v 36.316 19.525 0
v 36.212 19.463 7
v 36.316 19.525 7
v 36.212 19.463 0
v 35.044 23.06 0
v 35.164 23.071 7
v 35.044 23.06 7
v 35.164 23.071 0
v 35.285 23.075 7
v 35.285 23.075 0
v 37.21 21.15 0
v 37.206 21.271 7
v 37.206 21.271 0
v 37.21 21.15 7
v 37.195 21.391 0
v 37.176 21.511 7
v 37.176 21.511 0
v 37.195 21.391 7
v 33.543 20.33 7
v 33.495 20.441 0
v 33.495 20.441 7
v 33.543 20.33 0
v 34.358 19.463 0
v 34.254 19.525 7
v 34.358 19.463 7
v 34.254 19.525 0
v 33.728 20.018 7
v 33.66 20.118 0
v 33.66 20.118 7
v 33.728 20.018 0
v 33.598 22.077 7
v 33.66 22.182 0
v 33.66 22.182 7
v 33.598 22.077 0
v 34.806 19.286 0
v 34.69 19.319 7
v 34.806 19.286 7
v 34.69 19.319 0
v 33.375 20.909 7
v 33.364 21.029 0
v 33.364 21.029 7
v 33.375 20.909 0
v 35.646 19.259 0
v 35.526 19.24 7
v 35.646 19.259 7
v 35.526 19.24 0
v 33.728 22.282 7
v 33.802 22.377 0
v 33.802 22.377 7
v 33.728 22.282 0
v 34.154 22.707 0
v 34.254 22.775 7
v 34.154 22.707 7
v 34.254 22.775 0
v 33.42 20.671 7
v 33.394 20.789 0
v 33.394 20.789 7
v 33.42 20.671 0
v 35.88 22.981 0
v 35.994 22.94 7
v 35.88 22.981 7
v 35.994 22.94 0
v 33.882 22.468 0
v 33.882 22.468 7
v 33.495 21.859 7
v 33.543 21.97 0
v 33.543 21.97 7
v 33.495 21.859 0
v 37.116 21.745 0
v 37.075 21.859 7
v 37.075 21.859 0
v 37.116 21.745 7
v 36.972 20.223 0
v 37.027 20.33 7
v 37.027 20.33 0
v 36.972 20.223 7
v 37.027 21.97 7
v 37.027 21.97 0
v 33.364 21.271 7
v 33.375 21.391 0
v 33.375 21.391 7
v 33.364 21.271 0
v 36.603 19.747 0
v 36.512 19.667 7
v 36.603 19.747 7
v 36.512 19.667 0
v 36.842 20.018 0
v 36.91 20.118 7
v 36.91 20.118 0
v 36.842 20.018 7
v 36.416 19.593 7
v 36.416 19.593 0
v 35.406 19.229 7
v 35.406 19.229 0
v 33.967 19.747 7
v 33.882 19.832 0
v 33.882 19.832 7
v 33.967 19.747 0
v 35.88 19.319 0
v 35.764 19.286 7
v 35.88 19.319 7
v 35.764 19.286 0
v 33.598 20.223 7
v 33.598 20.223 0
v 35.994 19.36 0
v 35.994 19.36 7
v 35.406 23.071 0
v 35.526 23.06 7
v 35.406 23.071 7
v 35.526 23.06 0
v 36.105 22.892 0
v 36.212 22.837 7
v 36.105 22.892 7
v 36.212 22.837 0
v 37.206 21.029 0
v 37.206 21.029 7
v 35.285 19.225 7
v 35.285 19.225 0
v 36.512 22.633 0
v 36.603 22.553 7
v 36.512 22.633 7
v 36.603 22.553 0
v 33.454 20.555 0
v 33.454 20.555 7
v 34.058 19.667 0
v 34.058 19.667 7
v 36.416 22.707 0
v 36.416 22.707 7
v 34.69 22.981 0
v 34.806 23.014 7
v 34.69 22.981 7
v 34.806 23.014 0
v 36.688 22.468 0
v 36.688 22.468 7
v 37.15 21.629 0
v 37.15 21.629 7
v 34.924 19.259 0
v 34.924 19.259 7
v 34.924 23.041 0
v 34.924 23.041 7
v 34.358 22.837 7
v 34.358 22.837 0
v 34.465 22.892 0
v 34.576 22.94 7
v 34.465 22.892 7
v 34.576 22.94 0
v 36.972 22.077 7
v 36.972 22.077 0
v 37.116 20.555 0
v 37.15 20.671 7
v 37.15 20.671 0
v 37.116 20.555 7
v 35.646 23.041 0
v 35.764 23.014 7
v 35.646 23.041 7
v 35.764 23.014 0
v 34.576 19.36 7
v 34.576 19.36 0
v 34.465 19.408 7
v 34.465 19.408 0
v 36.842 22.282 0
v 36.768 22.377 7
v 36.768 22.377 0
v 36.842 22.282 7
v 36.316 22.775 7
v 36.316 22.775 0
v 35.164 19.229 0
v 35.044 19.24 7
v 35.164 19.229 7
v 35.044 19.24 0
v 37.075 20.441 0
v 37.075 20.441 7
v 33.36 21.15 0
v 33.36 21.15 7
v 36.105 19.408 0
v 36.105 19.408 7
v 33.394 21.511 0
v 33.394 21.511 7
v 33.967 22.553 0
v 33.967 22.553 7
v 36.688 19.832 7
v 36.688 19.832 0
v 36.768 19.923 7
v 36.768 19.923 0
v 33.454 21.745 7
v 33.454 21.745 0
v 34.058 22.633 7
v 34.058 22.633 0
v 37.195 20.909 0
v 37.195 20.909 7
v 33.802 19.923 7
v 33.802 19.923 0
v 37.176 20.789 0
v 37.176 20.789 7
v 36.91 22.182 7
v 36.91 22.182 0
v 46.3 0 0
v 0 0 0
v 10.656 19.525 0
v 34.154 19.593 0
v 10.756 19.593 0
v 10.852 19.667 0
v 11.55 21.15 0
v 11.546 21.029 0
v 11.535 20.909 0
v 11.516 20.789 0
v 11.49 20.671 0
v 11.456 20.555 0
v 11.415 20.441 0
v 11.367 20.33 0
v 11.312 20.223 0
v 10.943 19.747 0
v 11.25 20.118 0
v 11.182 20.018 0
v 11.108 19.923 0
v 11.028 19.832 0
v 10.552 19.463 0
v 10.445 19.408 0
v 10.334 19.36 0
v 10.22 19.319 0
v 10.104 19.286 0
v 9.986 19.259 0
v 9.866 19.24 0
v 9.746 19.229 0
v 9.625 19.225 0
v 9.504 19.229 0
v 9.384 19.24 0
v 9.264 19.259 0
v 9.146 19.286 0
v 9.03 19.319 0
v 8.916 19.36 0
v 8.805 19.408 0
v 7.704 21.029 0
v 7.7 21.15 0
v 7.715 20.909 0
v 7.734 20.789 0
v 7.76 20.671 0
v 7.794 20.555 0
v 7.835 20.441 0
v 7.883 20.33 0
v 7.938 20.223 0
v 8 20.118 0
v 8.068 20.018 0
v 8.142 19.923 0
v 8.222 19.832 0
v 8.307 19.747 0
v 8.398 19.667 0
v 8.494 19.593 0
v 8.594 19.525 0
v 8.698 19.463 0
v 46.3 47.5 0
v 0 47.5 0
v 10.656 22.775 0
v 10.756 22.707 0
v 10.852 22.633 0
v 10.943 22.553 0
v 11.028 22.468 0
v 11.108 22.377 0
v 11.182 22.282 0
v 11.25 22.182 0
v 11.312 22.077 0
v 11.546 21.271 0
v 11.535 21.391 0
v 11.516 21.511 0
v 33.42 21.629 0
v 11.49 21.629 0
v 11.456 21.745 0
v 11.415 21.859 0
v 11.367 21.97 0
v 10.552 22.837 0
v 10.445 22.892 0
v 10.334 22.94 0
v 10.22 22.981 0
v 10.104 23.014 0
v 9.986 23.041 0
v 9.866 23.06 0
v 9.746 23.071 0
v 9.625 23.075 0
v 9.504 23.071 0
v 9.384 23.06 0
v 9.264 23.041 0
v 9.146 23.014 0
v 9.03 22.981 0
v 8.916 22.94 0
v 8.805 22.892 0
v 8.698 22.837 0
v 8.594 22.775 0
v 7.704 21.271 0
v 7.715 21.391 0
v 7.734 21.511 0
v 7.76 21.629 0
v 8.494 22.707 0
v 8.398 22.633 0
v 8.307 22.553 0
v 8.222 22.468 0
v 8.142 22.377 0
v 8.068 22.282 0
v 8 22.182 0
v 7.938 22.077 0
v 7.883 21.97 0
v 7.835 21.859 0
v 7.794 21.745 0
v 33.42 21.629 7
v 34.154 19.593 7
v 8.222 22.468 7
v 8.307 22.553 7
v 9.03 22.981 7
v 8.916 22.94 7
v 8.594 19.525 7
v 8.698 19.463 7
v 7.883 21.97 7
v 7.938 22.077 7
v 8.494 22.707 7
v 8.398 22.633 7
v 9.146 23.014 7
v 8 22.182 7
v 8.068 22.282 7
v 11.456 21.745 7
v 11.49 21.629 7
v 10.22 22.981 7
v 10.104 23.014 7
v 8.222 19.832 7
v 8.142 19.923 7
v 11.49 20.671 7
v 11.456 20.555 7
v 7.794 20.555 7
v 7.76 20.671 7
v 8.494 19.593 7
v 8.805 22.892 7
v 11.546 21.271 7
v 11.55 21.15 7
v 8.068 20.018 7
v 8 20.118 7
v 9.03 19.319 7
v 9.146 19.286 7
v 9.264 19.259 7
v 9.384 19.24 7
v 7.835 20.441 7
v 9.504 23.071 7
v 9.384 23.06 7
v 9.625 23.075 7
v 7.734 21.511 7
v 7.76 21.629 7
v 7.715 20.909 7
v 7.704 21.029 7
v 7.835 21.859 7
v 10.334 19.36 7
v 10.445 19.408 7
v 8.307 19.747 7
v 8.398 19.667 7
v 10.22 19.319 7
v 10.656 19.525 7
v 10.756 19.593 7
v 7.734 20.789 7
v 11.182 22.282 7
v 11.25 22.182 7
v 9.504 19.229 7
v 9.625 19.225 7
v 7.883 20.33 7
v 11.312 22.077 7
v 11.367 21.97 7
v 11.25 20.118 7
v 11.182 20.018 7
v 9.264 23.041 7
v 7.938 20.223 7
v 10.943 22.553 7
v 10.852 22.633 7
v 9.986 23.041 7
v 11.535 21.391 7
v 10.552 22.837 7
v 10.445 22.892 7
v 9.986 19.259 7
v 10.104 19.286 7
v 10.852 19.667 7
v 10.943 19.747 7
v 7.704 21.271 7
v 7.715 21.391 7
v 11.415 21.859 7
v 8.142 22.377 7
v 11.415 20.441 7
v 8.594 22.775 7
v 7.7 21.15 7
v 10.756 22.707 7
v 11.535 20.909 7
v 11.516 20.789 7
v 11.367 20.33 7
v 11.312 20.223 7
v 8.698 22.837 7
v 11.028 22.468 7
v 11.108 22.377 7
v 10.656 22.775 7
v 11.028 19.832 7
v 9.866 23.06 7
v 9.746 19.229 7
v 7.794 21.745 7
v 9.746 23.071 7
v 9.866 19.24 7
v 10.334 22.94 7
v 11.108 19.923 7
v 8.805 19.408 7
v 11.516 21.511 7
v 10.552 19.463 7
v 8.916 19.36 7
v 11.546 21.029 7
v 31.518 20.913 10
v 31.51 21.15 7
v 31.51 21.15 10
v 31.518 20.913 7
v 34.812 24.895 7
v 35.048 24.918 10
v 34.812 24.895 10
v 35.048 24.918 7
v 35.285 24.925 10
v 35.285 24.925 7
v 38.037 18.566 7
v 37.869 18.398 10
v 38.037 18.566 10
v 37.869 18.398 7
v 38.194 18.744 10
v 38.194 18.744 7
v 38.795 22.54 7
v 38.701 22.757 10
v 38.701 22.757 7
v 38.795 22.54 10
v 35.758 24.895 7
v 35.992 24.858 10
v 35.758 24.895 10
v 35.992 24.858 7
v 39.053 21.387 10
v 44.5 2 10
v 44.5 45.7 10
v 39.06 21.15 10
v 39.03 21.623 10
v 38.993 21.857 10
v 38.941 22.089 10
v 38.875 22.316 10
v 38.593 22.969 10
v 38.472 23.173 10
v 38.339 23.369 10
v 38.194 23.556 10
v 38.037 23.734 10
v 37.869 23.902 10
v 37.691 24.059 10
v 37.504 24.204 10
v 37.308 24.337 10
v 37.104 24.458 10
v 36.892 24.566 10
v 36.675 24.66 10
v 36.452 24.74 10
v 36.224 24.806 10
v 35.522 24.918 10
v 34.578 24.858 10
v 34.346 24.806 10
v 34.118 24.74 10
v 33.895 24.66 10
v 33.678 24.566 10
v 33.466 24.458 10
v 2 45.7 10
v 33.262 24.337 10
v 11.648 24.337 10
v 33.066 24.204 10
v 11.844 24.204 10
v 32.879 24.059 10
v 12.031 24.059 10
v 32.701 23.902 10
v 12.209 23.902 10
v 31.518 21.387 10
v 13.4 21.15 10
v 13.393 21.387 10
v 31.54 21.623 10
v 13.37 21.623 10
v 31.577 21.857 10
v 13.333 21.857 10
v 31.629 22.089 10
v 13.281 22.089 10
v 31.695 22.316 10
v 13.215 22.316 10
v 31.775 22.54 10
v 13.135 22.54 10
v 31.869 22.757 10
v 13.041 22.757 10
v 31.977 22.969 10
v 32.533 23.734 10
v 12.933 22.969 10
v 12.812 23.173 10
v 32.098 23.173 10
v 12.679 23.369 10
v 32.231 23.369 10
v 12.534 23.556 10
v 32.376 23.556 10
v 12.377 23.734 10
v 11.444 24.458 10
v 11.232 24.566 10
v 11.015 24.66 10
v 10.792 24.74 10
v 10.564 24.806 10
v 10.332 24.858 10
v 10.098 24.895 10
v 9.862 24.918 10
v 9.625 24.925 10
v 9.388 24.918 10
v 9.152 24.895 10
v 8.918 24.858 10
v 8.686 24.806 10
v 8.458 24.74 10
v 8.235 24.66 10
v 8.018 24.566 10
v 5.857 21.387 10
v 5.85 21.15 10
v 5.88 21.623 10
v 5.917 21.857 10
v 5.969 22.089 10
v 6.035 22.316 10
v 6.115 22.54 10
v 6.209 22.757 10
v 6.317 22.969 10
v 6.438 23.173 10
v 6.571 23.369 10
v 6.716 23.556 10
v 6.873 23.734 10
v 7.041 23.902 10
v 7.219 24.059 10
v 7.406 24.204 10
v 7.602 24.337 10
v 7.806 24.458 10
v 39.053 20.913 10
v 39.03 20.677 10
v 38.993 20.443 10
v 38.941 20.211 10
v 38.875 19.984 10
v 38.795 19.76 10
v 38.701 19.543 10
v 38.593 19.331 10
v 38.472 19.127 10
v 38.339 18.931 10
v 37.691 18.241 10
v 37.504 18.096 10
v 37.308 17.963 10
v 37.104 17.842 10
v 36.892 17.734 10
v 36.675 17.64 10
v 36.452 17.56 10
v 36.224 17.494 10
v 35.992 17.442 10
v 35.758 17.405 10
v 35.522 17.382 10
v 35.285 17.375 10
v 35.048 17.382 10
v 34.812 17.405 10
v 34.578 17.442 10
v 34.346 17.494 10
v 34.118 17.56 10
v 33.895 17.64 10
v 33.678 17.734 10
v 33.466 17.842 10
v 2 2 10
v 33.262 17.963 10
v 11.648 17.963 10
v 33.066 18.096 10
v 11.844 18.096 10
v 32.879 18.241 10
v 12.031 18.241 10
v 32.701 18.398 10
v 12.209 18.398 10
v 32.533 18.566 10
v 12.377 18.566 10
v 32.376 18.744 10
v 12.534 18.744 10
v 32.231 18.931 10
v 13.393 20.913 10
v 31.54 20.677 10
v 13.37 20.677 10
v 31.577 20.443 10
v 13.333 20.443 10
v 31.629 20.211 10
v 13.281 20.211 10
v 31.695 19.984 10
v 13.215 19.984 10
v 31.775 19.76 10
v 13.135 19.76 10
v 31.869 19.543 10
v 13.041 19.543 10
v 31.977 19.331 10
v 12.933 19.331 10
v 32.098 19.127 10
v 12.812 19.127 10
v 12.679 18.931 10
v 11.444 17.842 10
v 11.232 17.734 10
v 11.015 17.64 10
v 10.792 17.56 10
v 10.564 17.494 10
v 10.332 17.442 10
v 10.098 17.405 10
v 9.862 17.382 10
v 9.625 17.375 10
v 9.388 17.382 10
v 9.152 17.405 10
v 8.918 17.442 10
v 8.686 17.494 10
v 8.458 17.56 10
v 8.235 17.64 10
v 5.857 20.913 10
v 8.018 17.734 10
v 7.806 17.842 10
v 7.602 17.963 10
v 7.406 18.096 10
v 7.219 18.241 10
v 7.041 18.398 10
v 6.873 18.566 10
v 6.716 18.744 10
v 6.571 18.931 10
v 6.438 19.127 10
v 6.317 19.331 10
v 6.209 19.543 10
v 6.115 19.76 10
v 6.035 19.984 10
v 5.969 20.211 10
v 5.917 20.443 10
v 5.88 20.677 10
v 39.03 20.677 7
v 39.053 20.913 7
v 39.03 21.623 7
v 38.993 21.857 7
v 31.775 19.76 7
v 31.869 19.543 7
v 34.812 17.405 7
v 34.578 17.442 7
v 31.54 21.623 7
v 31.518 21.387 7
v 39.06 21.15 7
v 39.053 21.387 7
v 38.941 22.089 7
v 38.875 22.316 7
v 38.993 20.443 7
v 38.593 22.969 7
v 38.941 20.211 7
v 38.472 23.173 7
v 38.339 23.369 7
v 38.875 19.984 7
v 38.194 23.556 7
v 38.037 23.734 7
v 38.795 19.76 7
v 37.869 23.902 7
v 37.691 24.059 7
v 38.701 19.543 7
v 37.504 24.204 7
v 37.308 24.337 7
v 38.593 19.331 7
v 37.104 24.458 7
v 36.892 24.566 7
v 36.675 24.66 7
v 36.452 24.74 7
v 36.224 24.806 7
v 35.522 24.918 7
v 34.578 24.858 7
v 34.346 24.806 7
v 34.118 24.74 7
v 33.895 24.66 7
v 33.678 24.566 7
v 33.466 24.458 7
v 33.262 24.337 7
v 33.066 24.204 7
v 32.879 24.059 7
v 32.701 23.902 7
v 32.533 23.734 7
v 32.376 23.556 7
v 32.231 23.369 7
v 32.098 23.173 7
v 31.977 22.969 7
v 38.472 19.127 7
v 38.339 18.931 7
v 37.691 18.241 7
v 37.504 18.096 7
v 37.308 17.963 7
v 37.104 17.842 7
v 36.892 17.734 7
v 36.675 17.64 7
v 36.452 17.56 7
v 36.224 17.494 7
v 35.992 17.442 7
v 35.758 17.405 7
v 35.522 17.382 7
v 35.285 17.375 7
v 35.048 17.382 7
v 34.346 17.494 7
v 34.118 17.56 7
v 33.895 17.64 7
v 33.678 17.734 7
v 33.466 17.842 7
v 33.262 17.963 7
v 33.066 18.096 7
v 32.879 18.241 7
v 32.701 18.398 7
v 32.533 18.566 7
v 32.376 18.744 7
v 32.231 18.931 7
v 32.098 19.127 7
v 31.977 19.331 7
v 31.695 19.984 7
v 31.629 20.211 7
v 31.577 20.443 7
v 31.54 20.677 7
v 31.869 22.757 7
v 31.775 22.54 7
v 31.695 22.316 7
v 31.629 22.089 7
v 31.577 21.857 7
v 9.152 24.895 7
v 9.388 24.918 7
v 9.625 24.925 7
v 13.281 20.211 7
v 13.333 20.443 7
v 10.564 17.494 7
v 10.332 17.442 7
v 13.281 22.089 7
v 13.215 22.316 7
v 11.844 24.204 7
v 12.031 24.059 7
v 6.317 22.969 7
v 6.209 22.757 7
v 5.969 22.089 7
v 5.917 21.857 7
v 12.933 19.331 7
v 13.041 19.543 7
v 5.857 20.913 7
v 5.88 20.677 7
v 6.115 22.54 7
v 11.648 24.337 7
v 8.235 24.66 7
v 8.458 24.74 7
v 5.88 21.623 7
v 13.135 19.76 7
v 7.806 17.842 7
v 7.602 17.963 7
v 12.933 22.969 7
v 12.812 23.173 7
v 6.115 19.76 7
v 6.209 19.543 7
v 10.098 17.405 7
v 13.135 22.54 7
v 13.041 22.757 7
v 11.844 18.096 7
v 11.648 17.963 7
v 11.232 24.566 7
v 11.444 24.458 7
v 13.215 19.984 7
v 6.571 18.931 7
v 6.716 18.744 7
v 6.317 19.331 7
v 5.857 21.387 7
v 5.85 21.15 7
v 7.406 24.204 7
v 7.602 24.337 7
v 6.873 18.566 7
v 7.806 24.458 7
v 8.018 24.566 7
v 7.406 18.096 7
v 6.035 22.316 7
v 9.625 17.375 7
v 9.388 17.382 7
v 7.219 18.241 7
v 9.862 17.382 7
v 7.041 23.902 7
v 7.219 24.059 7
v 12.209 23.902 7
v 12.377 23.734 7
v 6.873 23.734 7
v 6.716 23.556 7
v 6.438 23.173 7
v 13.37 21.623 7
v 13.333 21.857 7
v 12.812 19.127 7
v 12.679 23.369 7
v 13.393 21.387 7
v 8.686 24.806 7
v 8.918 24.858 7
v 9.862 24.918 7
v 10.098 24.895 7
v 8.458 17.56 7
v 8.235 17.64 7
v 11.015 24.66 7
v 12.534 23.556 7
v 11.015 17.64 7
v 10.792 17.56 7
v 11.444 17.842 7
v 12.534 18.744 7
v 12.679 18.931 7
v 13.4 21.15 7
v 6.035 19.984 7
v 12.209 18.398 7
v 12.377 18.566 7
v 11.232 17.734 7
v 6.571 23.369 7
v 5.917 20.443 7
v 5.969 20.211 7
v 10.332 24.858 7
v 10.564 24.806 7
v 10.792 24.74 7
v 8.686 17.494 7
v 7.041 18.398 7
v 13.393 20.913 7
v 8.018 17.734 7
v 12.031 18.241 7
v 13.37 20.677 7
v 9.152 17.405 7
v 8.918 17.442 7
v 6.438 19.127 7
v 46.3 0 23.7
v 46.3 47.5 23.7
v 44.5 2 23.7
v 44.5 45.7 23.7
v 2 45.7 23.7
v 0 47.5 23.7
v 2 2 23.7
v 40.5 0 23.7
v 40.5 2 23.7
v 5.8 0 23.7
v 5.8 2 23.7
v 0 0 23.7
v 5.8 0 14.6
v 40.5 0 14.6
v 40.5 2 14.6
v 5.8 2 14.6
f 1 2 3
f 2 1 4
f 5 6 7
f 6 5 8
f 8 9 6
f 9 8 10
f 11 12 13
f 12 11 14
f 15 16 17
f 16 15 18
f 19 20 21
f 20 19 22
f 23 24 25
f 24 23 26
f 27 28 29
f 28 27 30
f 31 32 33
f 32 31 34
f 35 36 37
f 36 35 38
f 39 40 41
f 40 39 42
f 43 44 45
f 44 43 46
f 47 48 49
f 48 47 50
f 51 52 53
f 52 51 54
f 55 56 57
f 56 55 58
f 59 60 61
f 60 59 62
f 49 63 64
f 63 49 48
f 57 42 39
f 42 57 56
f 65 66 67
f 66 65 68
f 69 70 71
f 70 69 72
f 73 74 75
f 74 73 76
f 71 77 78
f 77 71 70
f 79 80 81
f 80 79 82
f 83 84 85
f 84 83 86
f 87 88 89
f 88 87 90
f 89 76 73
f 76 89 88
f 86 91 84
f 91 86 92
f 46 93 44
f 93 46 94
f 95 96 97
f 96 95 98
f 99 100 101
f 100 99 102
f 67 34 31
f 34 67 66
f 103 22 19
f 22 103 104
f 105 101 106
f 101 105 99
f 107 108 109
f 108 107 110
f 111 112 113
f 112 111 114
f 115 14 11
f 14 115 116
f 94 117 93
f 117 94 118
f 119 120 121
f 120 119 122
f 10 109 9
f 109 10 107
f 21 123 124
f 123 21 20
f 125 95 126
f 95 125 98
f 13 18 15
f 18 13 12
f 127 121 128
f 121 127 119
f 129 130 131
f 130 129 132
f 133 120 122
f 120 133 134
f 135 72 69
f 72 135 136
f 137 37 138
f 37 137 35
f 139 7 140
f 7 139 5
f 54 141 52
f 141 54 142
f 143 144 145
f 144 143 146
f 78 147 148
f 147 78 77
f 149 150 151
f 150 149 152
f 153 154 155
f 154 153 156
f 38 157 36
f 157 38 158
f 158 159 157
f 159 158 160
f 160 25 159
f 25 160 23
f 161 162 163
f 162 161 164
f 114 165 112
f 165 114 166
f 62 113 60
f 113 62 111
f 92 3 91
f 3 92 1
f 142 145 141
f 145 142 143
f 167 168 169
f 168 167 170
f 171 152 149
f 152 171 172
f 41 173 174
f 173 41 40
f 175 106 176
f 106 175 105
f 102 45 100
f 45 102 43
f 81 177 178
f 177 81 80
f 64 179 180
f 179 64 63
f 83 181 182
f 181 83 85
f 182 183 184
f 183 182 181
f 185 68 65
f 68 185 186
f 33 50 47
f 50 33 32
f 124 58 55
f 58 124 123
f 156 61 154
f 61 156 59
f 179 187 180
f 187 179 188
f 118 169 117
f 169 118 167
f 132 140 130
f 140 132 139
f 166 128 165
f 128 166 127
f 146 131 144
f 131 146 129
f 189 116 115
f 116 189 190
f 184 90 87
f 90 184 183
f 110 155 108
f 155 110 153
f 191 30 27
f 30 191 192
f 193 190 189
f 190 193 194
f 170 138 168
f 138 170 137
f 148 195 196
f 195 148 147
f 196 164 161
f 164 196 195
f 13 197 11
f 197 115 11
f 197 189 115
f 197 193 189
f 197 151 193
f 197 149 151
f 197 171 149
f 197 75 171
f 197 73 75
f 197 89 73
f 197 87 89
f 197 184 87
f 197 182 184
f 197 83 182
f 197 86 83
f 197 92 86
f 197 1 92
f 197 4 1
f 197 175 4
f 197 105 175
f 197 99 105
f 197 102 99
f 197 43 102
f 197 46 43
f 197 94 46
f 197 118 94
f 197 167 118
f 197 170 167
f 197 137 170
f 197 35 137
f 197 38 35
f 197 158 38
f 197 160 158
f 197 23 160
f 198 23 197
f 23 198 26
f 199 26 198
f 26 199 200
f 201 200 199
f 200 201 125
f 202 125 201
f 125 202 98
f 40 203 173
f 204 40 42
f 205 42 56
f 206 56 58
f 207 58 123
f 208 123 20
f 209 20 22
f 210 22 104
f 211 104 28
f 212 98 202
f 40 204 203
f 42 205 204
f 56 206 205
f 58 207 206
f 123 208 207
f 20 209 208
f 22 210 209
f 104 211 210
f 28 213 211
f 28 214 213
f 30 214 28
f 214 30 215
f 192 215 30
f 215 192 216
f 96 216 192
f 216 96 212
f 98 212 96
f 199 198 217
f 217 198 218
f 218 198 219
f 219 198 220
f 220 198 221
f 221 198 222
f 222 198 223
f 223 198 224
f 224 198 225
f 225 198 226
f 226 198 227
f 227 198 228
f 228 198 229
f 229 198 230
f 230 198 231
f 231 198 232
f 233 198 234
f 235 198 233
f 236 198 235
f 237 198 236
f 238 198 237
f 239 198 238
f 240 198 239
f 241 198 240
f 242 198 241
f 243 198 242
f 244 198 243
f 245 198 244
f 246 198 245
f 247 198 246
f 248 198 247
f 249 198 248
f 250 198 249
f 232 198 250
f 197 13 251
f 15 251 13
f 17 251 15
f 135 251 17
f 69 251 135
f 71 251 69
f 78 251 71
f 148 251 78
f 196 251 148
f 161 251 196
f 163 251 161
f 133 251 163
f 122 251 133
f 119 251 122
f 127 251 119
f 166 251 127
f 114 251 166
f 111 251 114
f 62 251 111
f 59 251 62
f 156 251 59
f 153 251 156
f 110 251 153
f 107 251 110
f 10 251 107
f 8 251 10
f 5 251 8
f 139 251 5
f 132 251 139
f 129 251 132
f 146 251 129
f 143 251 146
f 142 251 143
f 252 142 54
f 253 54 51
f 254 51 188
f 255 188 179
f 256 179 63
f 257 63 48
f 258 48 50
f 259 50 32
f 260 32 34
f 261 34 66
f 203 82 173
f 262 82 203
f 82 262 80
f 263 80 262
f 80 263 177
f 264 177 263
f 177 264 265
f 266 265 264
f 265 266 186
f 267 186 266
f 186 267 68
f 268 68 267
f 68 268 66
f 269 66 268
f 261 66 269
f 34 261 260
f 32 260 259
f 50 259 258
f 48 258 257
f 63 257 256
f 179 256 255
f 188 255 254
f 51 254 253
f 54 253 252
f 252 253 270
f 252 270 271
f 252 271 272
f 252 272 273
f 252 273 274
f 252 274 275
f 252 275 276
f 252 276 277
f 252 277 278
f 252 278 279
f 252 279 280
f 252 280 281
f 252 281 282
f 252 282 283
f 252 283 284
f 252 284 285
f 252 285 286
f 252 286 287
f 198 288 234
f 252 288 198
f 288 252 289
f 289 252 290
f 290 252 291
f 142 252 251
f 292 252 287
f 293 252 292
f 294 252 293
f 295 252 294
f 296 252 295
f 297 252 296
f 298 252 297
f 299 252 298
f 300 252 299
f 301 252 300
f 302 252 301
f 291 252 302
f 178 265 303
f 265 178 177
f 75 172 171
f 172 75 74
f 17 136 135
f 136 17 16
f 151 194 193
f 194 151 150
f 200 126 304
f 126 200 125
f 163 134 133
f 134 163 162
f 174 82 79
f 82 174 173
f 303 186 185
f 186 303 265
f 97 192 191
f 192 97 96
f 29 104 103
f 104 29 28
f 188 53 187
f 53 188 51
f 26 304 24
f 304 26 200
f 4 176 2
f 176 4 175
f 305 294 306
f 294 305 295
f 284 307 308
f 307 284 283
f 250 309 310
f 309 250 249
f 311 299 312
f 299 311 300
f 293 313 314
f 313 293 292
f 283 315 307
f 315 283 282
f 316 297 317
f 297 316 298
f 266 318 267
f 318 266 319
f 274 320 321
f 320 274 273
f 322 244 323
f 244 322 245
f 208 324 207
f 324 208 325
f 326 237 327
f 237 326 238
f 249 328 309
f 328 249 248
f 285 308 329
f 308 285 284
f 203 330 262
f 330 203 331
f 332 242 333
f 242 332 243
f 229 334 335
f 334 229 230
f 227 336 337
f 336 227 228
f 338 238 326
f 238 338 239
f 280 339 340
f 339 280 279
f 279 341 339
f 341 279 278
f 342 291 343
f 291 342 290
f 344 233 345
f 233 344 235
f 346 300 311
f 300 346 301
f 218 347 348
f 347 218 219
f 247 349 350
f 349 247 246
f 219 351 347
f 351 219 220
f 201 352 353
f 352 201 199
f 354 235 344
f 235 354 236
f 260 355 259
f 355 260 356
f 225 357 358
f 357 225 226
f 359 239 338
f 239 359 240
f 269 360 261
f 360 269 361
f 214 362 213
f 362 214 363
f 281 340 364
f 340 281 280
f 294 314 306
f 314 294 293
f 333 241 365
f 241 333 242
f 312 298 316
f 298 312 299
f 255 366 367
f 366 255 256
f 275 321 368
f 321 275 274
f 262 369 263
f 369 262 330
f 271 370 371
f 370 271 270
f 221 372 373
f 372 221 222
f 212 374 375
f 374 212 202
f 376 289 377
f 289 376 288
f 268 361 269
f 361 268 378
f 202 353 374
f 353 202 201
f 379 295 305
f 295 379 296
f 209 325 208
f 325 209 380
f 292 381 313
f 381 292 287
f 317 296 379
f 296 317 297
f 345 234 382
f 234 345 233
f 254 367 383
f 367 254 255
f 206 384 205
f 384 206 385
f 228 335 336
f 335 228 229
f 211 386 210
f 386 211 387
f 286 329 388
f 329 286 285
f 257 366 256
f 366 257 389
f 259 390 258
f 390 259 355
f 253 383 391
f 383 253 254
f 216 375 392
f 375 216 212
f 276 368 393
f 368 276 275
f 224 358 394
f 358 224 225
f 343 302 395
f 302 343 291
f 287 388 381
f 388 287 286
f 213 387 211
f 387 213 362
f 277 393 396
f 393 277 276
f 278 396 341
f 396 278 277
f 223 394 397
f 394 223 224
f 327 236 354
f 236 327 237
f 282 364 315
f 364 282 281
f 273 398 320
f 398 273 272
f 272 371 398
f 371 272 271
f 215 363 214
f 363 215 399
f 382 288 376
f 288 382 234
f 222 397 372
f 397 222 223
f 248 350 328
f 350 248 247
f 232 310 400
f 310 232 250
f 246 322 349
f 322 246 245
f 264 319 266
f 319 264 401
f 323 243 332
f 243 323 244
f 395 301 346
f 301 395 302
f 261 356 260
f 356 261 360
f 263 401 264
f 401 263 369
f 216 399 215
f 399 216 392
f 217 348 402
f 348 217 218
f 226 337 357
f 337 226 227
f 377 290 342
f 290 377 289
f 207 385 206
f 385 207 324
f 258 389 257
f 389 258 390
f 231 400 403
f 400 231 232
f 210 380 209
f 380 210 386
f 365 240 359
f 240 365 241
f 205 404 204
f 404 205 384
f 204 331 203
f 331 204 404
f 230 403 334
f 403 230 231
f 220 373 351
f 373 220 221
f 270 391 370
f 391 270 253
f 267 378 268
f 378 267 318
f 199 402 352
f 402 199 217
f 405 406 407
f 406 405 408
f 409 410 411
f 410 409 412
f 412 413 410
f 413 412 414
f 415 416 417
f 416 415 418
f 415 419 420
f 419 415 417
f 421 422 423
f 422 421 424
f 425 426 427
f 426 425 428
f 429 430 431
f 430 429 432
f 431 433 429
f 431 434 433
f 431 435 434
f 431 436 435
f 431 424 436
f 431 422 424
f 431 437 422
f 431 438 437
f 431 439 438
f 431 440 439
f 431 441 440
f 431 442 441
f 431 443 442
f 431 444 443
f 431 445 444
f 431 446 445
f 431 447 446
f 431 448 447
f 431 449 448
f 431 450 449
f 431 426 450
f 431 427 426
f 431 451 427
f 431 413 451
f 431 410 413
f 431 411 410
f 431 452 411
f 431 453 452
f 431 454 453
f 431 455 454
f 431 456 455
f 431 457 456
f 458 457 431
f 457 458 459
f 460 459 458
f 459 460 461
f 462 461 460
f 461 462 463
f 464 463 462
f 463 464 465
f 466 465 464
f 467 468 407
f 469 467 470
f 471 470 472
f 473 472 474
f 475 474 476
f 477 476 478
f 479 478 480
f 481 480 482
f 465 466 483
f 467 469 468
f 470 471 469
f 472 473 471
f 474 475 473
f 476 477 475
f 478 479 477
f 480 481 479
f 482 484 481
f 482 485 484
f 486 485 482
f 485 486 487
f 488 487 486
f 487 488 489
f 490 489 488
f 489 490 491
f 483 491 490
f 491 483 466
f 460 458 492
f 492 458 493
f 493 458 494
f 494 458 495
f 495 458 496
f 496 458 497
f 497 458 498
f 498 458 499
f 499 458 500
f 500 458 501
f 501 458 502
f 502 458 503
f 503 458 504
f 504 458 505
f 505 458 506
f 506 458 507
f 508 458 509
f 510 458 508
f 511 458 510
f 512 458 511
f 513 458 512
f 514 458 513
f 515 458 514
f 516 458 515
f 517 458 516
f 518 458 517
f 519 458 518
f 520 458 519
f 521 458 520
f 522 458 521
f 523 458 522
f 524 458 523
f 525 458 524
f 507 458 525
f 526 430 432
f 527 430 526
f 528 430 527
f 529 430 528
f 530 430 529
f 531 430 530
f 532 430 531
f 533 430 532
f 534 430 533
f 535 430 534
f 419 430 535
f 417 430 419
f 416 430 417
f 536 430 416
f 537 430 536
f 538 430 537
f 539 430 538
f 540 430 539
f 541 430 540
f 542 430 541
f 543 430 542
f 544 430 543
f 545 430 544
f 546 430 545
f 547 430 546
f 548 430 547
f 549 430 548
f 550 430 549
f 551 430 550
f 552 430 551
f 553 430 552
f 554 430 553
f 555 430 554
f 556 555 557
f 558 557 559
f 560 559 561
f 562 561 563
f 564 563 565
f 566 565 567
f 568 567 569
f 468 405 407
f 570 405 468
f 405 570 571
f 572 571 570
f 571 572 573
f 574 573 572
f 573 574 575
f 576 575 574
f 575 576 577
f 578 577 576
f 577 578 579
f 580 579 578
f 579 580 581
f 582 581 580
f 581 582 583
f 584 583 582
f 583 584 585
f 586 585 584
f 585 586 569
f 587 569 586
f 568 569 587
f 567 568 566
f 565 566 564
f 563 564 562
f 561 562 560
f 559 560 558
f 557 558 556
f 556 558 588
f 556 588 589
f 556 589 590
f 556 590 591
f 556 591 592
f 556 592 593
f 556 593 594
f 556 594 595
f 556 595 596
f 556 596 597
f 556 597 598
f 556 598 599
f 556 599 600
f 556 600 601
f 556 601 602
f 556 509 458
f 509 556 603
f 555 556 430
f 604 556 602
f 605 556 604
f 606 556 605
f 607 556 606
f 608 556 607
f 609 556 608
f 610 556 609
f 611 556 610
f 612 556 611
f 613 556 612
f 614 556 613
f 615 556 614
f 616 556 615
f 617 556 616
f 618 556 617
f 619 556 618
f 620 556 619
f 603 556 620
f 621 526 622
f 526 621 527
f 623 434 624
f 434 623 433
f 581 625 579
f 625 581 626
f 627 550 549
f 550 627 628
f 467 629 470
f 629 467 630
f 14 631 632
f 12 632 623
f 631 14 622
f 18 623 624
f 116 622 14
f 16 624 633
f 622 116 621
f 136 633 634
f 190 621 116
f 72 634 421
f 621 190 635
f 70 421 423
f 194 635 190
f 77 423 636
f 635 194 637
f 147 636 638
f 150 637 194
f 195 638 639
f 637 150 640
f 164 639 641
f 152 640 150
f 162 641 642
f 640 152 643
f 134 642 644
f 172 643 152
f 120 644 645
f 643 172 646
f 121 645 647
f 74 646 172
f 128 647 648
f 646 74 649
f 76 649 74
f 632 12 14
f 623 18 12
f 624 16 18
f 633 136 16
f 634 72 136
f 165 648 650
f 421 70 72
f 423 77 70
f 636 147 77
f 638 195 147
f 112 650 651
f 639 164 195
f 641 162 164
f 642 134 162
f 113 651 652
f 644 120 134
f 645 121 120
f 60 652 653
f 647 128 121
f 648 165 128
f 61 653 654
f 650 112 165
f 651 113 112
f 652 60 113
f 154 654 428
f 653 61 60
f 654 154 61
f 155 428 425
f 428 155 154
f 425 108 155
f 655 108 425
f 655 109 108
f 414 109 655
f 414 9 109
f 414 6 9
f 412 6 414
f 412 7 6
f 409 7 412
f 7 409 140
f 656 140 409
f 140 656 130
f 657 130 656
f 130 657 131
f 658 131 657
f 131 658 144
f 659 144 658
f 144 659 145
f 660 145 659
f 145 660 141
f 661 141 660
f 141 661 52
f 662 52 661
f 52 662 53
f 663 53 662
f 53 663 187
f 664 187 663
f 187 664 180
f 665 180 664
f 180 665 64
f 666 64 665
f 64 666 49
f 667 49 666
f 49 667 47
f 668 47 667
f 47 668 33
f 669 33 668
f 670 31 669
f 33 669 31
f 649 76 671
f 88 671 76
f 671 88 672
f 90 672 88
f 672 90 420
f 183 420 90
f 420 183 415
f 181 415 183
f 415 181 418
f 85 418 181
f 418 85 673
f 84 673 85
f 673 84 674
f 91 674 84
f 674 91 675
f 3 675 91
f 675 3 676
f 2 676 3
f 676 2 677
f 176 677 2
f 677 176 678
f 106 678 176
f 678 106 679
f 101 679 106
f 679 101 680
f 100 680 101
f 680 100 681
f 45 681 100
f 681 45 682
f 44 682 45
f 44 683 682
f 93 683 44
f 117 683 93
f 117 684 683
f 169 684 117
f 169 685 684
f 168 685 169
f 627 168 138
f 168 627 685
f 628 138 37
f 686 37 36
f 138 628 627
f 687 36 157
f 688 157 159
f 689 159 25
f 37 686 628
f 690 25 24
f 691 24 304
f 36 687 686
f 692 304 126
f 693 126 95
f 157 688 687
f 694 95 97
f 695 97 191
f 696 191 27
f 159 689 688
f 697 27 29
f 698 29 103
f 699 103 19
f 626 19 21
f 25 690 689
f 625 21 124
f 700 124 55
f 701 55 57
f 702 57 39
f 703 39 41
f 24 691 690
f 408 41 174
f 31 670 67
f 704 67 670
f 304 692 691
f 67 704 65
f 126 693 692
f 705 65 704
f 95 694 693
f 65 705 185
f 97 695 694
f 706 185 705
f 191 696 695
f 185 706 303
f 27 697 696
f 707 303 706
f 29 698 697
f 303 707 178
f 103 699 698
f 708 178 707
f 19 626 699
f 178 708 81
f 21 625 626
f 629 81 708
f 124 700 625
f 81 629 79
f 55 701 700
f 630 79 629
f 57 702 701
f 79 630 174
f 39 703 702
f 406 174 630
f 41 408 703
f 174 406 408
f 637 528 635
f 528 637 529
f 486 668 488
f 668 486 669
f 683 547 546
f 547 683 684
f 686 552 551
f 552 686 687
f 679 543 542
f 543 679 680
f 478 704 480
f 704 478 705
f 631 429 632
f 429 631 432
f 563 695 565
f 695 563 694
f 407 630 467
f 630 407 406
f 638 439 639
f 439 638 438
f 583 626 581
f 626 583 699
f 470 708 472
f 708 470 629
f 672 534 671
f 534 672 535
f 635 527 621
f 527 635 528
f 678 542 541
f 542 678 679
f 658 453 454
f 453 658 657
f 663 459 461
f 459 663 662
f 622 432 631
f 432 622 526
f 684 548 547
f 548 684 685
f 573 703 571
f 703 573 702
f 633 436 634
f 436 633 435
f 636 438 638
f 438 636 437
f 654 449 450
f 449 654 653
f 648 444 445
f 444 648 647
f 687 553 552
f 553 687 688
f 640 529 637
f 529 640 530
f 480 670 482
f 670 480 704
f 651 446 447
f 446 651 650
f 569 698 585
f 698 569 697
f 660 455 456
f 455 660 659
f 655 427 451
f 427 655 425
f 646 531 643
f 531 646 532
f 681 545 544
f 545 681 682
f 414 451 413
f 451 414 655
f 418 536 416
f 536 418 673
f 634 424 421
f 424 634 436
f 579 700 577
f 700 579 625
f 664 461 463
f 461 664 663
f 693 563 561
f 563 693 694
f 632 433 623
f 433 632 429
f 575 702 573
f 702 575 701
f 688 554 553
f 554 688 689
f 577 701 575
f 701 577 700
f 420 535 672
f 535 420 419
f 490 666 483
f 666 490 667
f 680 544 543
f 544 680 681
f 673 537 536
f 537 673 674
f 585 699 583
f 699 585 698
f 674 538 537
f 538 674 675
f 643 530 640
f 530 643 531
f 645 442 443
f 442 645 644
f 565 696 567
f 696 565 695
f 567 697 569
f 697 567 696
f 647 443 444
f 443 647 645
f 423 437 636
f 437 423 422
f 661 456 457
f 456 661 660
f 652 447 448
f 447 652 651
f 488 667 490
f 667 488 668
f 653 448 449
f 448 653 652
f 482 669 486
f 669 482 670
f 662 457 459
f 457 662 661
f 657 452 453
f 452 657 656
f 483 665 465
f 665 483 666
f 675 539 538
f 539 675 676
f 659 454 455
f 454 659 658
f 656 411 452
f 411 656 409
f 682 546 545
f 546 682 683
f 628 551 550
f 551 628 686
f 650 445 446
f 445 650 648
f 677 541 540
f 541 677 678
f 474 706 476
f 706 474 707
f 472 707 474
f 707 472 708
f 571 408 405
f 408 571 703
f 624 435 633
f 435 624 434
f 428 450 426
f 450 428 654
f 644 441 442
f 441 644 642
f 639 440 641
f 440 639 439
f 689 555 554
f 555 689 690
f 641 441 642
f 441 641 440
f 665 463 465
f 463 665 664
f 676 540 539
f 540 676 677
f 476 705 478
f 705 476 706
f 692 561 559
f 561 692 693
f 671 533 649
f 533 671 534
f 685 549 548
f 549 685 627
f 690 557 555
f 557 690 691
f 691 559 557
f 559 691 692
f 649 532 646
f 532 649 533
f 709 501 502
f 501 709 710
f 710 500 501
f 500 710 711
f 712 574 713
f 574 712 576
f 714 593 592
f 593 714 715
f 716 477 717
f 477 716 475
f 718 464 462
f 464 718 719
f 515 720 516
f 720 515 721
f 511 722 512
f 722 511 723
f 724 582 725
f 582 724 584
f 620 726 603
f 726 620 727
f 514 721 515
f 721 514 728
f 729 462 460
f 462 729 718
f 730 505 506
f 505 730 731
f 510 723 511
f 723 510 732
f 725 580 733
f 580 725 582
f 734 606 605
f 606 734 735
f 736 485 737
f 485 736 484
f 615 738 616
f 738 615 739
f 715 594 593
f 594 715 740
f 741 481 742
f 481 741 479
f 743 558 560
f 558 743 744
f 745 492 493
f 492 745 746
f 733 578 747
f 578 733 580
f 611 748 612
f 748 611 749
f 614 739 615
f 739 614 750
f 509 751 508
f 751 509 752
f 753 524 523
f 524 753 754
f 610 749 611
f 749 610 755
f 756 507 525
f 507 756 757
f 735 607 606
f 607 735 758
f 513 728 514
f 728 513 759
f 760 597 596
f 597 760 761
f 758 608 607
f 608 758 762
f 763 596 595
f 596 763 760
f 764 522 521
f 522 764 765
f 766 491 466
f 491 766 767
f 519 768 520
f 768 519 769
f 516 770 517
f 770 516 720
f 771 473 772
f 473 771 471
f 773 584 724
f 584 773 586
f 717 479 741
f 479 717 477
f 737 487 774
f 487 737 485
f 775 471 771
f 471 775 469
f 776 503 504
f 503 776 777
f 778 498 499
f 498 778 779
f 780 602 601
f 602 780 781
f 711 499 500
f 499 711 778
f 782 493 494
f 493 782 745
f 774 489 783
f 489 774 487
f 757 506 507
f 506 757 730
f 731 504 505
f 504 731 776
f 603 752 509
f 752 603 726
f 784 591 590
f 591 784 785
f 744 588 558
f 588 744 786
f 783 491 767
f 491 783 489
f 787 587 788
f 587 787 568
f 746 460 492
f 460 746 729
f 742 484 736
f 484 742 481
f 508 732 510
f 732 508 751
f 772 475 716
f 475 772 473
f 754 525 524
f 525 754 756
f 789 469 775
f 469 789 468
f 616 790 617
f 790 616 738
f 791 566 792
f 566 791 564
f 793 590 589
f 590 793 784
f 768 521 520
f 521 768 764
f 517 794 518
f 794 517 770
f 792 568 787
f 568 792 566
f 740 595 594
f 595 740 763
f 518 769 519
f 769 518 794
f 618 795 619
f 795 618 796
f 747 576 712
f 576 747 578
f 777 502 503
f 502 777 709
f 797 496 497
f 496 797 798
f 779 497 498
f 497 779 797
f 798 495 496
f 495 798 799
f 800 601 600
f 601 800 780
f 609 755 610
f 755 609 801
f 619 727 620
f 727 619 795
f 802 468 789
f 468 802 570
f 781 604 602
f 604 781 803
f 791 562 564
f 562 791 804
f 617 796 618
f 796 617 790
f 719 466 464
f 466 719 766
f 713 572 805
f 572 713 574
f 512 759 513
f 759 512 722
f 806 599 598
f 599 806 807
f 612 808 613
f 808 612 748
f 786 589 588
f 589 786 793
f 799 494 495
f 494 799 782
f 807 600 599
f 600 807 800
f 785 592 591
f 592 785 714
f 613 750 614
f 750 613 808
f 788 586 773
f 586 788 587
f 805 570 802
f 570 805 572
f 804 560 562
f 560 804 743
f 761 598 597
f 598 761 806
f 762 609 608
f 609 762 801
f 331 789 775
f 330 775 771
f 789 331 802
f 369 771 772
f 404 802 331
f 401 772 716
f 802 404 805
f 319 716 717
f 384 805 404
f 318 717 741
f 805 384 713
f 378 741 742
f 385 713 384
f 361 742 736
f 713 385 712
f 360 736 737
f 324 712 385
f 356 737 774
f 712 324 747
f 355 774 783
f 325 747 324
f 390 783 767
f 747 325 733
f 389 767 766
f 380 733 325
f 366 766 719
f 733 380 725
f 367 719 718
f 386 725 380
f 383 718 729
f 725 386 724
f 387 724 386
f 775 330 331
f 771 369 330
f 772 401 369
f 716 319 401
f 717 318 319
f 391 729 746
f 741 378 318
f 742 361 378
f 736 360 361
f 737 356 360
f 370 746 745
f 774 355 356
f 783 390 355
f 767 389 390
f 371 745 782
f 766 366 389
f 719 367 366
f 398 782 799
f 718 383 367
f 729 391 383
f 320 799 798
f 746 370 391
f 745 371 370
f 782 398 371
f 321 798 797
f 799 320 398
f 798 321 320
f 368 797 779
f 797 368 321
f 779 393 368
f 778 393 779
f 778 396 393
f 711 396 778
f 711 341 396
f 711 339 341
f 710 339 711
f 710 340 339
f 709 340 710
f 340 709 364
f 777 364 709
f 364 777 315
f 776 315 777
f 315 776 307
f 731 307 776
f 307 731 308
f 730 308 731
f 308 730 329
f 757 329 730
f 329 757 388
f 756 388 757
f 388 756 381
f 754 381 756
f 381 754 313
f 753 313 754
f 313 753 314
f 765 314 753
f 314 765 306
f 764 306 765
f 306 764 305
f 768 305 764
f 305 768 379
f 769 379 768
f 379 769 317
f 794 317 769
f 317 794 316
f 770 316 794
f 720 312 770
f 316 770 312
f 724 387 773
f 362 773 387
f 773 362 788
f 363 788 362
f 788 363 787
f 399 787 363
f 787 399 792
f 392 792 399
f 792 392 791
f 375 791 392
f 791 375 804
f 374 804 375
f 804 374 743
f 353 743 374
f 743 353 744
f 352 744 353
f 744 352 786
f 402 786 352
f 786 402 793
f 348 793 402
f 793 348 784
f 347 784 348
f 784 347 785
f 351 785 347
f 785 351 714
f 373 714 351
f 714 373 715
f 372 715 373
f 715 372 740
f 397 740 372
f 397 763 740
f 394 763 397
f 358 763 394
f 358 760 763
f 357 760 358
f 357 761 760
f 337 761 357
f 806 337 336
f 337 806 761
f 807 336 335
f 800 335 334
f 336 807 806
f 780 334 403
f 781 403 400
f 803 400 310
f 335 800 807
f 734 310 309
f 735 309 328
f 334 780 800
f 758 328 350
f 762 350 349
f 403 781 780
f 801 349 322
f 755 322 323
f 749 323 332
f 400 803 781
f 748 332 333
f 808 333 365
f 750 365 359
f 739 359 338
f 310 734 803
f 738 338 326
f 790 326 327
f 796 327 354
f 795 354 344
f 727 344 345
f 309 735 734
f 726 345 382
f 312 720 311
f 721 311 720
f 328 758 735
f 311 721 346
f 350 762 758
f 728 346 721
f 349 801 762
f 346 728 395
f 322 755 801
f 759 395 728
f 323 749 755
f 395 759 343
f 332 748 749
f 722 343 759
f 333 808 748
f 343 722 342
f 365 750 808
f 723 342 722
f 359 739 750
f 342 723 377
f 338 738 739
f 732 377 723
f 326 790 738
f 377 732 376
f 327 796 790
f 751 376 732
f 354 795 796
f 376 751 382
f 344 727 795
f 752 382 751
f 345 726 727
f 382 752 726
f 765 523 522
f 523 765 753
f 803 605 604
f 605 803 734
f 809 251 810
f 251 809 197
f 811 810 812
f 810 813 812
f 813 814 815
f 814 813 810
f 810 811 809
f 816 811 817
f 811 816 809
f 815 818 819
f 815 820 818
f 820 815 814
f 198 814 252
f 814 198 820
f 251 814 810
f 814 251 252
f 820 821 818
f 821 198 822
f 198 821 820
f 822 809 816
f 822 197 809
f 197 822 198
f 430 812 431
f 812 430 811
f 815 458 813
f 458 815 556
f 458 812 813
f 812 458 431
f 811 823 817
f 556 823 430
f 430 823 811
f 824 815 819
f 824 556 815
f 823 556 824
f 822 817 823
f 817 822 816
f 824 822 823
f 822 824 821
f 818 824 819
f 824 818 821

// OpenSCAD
// file: ../shared_helper.scad
// Shared Helper variables and modules

// Variables
quality_value = 100;
$fn = quality_value;

// Screw Holes
m2_hole_diameter = 1.85; // 1.95;
m2_loose_diameter = 2.50;
m2_counter_sink_diameter = 3.80;
m2_counter_sink_length = 2.00;
m2_hole_offset = m2_hole_diameter / 2.0;
m2_hole_height = 100.00;
m2_nut_outer_width = 3.90;
m2_nut_outer_height = 4.40;
m2_nut_outer_depth = 1.50;
// M2_Counter_Sink_Depth

m3_hole_diameter = 2.9; // 2.8
m3_hole_offset = m3_hole_diameter / 2.0;
m3_hole_height = 100.00;
m3_head_diameter = 6.2;
m3_head_depth = 3.0; // 2.5??, 3.0

m4_hole_diameter = 3.85; // 3.90
m4_hole_offset = m4_hole_diameter / 2.0;
m4_hole_height = 100.00;
m4_head_diameter = 7.55;
m4_head_depth = 3.0; // 2.5??, 3.0

// Tolerances
hole_tight_tolerance = 0.05;
hole_loose_tolerance = 0.20;

// Springs
spring_diameter = 5.45;
spring_length = 35.00;

// Nails
brass_nail_diameter = 2.4; // 2.00; // 1.95 at the beginning it tapers
brass_nail_length = 29.54;
brass_nail_head_diameter = 3.20; // 3.00; // oval 2.84 - 3.1 mm
brass_nail_head_depth = 1.80; //1.00; // 1.80; // 2.00;

// General Variables
v_wheel_hole_diameter = 5.20;
v_wheel_offset = (v_wheel_hole_diameter / 2.0) + 2.0;

// Hot-End Holes
stand_off_hole_diameter = m3_hole_diameter;
stand_off_width_distance = 11.60 + stand_off_hole_diameter;

// Magnets
// Small Magnet (Neo)
small_magnet_height = 2.00; // ±2.00 1.97
small_magnet_diameter = 3.00; // ±3.00 // 2.98

// Medium Magnet (Neo)
medium_magnet_height = 2.96; // ±3.00
medium_magnet_diameter = 5.00;

// Large Magnet (ferrite)
large_magnet_height = 2.98; // ±3.00
large_magnet_diameter = 9.79; // ±10.00

// Switches
// D2F Switch
d2f_length = 12.88; // ±12.70
d2f_width = 5.84; // ±5.70
d2f_depth = 6.20; // ±7.00 (5 + 2) ... ±6.50
d2f_pins = 9.00 - 6.50;
d2f_plunger_length = 2.64;
d2f_plunger_width = 0.97; // ±1.00
d2f_plunger_depth = 0.39; // ±0.50
d2f_mount_hole_position = 2.10;
d2f_hole_position_from_centre = 2.85;
d2f_pin_pre_travel = 0.50;
d2f_mount_hole_shift = 4.40 + m2_hole_offset + m2_hole_offset;
d2f_switch_base = 0.2 + 0.7 + 1.50 + 0.55 - 1.0;
d2f_switch_hole_hight = 22.00;
d2f_extra_tolerance_for_switch_holes = 0.12;

// 10t85 Switch
10t85_length = 20.04; // ±19.90
10t85_width = 6.34; // ±6.40
10t85_depth = 10.64; // ±10.70
10t85_plunger_length = 3.28; // ±4.00
10t85_plunger_width = 1.96;
10t85_plunger_depth = 1.30;

// Creality Endstop Board, 2208 V2.0
// creality_endstop_hole_diameter = m3_hole_diameter + hole_loose_tolerance; // Hole is M3 sized but meant for a loose M2
creality_endstop_hole_diameter = m2_hole_diameter + hole_tight_tolerance;
creality_endstop_hole_offset = 15.00;
creality_endstop_board_height = 20.30;
creality_endstop_plug_height_extension = 2.00;
creality_endstop_board_width = 20.20;
creality_endstop_board_thickness = 1.30;
creality_endstop_board_pins_thickness = 3.20 - creality_endstop_board_thickness;
creality_endstop_board_switch_thickness = 8.50 - creality_endstop_board_thickness;
creality_endstop_board_back_space = 2.00; // Taken from the rail mount bracket
creality_endstop_board_back_height = 14.90;
creality_endstop_board_back_width = 16.80;
creality_endstop_back_thickness = 3.30;
creality_endstop_back_hole_wall_spacing = 1.50; //3.00;

// Small Tactile Switch
small_tactile_switch_length = 6.21;
small_tactile_switch_width = 6.17;
small_tactile_switch_depth = 3.18;
small_tactile_switch_plunger_diameter = 3.40;
small_tactile_switch_plunger_depth = 1.40;

// Large Tactile Switch
large_tactile_switch_length = 12.03;
large_tactile_switch_width = 11.95;
large_tactile_switch_depth = 3.12;
large_tactile_switch_plunger_length = 3.75;
large_tactile_switch_plunger_width = 3.70;
large_tactile_switch_plunger_depth = 3.94;

// Button
button_topper_top_diameter = 11.65;
button_topper_bottom_diameter = 12.96;
button_topper_depth = 5.64;
button_topper_bottom_depth = 4.38;

// Belts
// GT2

// Modules
// Creality Mounting Holes
module CrealityCounterSunkHotEndMountingHoles(total_casing_depth, casing_top_extension) {
  // Mounting holes with countersinking - horizontal, through-holes, properly positioned
  cylinder(d=m3_hole_diameter, h=total_casing_depth + 2.00, center=true);
  cylinder(d=m3_hole_diameter, h=total_casing_depth + 2.00, center=true);

  translate([stand_off_width_distance, 0, 0]) {
    cylinder(d=m3_hole_diameter, h=total_casing_depth + 2.00, center=true);
    cylinder(d=m3_head_diameter + hole_loose_tolerance, h=4 + m3_head_depth + 6 + 1.8 + casing_top_extension);
  }
}

module CrealityHotEndMountingHoles(total_casing_depth) {
  cylinder(d=m3_hole_diameter, h=total_casing_depth + 2.00, center=true);

  translate([stand_off_width_distance, 0, 0]) {
    cylinder(d=m3_hole_diameter, h=total_casing_depth + 2.00, center=true);
  }
}

module CrealityEndstopMountHoles(height, include_back_nut_cutout) {
  cylinder(d=creality_endstop_hole_diameter, h=height, center=true);

  translate([creality_endstop_hole_offset, 0, 0]) {
    cylinder(d=creality_endstop_hole_diameter, h=height, center=true);
  }

  if (include_back_nut_cutout) {
    back_depth = m2_nut_outer_depth;

    translate([-2.0, -2.0, 0]) {
      cube([m2_nut_outer_width, m2_nut_outer_height, back_depth]);

      translate([creality_endstop_hole_offset, 0, 0]) {
        cube([m2_nut_outer_width, m2_nut_outer_height, back_depth]);
      }
    }
  }
}

module CrealityEndstopBackSpace(base_cutout_extension) {
  // Smaller gap between screw holes
  translate([creality_endstop_hole_diameter + creality_endstop_back_hole_wall_spacing, 0.0, 0.0]) {
    cube([creality_endstop_board_back_width - 2 * (creality_endstop_hole_diameter + creality_endstop_back_hole_wall_spacing), base_cutout_extension, creality_endstop_back_thickness + 1.0]);
  }

  // Top gap part
  translate([0.0, base_cutout_extension, 0]) {
    cube([creality_endstop_board_back_width, (creality_endstop_board_back_height + base_cutout_extension), creality_endstop_back_thickness + 1.0]);
  }
}

// D2F Switch Mounting
module D2F_Switch_Space() { // Should be used as a negative / difference space
  // D2F Switch Space
  // switch_base = 0.2 + 0.7 + 1.50 + 0.55;
  // switch_base = 0.2 + 0.7 + 1.50 + 0.55 - 1.0;
  switch_base = d2f_switch_base;

  // cube([d2f_depth, d2f_width + 1.05 + 0.75 - 0.95, d2f_length + casing_top_edge_buffer]); // 1.05
  cube([d2f_length, (d2f_width + 2.00) + d2f_pins, d2f_depth]);
}

module D2F_Switch_Mount_Holes() {
  rotate([0, 0, 90]) {
    translate([0.0, d2f_hole_position_from_centre, 0.0]) {
      cylinder(d=m2_hole_diameter + hole_tight_tolerance + (d2f_extra_tolerance_for_switch_holes * 3), h=d2f_switch_hole_hight);
    }

    translate([0.0, -(d2f_hole_position_from_centre + m2_hole_offset), 0.0]) {
      cylinder(d=m2_hole_diameter + hole_tight_tolerance + (d2f_extra_tolerance_for_switch_holes * 3), h=d2f_switch_hole_hight);
    }
  }
}
// main file
// Sonoff Mini R2 Holder for Bastion Printer. Designed to mount to PSU

include <../shared_helper.scad>;
revision = 1.0;

tolerance = 0.2;
width = 42.30;
height = 43.50;
depth = 19.70;

case_thickness = 4.00;
case_base_thickness = case_thickness + 6.00;
case_depth = depth + case_thickness;

mounting_hole_margin = 21.81 + m4_hole_diameter;

cutout_distance_from_edge = 5.80;
cutout_length = 33.00 + 1.70; //31.00;
cutout_height = 15.00;
cutout_base_height = 4.60;

module inner_space() {
  translate([case_thickness / 2.0, case_thickness / 2.0, case_base_thickness]) {
    cube([width + tolerance, height + tolerance, case_depth]);
  }
}

module mounting_holes() {
  rotate([0, 0, 90]) {
    translate([width / 2.0, - (mounting_hole_margin + ((height - 5.0) / 4)), 0]) {
      cylinder(d=m4_hole_diameter, h=100.00);

      translate([0, mounting_hole_margin, 0]) {
        cylinder(d=m4_hole_diameter, h=100.00);
      }
    }
  }
}

module countersunk_holes() {
  rotate([0, 0, 90]) {
    translate([width / 2.0, - (mounting_hole_margin + ((height - 5.0) / 4)), case_base_thickness - m4_head_depth]) {
      cylinder(d=m4_head_diameter, h=m4_head_depth);

      translate([0, mounting_hole_margin, 0]) {
        cylinder(d=m4_head_diameter, h=m4_head_depth);
      }
    }
  }
}

module cutout_wall() {
  rotate([0, 0, 0]) {
    translate([cutout_distance_from_edge, 0, cutout_base_height + case_base_thickness]) {
      cube([cutout_length, cutout_height, 100.00]);
    }
  }
}

difference() {
  cube([width + case_thickness, height + case_thickness, case_depth]);
  inner_space();
  mounting_holes();
  countersunk_holes();
  cutout_wall();
}
